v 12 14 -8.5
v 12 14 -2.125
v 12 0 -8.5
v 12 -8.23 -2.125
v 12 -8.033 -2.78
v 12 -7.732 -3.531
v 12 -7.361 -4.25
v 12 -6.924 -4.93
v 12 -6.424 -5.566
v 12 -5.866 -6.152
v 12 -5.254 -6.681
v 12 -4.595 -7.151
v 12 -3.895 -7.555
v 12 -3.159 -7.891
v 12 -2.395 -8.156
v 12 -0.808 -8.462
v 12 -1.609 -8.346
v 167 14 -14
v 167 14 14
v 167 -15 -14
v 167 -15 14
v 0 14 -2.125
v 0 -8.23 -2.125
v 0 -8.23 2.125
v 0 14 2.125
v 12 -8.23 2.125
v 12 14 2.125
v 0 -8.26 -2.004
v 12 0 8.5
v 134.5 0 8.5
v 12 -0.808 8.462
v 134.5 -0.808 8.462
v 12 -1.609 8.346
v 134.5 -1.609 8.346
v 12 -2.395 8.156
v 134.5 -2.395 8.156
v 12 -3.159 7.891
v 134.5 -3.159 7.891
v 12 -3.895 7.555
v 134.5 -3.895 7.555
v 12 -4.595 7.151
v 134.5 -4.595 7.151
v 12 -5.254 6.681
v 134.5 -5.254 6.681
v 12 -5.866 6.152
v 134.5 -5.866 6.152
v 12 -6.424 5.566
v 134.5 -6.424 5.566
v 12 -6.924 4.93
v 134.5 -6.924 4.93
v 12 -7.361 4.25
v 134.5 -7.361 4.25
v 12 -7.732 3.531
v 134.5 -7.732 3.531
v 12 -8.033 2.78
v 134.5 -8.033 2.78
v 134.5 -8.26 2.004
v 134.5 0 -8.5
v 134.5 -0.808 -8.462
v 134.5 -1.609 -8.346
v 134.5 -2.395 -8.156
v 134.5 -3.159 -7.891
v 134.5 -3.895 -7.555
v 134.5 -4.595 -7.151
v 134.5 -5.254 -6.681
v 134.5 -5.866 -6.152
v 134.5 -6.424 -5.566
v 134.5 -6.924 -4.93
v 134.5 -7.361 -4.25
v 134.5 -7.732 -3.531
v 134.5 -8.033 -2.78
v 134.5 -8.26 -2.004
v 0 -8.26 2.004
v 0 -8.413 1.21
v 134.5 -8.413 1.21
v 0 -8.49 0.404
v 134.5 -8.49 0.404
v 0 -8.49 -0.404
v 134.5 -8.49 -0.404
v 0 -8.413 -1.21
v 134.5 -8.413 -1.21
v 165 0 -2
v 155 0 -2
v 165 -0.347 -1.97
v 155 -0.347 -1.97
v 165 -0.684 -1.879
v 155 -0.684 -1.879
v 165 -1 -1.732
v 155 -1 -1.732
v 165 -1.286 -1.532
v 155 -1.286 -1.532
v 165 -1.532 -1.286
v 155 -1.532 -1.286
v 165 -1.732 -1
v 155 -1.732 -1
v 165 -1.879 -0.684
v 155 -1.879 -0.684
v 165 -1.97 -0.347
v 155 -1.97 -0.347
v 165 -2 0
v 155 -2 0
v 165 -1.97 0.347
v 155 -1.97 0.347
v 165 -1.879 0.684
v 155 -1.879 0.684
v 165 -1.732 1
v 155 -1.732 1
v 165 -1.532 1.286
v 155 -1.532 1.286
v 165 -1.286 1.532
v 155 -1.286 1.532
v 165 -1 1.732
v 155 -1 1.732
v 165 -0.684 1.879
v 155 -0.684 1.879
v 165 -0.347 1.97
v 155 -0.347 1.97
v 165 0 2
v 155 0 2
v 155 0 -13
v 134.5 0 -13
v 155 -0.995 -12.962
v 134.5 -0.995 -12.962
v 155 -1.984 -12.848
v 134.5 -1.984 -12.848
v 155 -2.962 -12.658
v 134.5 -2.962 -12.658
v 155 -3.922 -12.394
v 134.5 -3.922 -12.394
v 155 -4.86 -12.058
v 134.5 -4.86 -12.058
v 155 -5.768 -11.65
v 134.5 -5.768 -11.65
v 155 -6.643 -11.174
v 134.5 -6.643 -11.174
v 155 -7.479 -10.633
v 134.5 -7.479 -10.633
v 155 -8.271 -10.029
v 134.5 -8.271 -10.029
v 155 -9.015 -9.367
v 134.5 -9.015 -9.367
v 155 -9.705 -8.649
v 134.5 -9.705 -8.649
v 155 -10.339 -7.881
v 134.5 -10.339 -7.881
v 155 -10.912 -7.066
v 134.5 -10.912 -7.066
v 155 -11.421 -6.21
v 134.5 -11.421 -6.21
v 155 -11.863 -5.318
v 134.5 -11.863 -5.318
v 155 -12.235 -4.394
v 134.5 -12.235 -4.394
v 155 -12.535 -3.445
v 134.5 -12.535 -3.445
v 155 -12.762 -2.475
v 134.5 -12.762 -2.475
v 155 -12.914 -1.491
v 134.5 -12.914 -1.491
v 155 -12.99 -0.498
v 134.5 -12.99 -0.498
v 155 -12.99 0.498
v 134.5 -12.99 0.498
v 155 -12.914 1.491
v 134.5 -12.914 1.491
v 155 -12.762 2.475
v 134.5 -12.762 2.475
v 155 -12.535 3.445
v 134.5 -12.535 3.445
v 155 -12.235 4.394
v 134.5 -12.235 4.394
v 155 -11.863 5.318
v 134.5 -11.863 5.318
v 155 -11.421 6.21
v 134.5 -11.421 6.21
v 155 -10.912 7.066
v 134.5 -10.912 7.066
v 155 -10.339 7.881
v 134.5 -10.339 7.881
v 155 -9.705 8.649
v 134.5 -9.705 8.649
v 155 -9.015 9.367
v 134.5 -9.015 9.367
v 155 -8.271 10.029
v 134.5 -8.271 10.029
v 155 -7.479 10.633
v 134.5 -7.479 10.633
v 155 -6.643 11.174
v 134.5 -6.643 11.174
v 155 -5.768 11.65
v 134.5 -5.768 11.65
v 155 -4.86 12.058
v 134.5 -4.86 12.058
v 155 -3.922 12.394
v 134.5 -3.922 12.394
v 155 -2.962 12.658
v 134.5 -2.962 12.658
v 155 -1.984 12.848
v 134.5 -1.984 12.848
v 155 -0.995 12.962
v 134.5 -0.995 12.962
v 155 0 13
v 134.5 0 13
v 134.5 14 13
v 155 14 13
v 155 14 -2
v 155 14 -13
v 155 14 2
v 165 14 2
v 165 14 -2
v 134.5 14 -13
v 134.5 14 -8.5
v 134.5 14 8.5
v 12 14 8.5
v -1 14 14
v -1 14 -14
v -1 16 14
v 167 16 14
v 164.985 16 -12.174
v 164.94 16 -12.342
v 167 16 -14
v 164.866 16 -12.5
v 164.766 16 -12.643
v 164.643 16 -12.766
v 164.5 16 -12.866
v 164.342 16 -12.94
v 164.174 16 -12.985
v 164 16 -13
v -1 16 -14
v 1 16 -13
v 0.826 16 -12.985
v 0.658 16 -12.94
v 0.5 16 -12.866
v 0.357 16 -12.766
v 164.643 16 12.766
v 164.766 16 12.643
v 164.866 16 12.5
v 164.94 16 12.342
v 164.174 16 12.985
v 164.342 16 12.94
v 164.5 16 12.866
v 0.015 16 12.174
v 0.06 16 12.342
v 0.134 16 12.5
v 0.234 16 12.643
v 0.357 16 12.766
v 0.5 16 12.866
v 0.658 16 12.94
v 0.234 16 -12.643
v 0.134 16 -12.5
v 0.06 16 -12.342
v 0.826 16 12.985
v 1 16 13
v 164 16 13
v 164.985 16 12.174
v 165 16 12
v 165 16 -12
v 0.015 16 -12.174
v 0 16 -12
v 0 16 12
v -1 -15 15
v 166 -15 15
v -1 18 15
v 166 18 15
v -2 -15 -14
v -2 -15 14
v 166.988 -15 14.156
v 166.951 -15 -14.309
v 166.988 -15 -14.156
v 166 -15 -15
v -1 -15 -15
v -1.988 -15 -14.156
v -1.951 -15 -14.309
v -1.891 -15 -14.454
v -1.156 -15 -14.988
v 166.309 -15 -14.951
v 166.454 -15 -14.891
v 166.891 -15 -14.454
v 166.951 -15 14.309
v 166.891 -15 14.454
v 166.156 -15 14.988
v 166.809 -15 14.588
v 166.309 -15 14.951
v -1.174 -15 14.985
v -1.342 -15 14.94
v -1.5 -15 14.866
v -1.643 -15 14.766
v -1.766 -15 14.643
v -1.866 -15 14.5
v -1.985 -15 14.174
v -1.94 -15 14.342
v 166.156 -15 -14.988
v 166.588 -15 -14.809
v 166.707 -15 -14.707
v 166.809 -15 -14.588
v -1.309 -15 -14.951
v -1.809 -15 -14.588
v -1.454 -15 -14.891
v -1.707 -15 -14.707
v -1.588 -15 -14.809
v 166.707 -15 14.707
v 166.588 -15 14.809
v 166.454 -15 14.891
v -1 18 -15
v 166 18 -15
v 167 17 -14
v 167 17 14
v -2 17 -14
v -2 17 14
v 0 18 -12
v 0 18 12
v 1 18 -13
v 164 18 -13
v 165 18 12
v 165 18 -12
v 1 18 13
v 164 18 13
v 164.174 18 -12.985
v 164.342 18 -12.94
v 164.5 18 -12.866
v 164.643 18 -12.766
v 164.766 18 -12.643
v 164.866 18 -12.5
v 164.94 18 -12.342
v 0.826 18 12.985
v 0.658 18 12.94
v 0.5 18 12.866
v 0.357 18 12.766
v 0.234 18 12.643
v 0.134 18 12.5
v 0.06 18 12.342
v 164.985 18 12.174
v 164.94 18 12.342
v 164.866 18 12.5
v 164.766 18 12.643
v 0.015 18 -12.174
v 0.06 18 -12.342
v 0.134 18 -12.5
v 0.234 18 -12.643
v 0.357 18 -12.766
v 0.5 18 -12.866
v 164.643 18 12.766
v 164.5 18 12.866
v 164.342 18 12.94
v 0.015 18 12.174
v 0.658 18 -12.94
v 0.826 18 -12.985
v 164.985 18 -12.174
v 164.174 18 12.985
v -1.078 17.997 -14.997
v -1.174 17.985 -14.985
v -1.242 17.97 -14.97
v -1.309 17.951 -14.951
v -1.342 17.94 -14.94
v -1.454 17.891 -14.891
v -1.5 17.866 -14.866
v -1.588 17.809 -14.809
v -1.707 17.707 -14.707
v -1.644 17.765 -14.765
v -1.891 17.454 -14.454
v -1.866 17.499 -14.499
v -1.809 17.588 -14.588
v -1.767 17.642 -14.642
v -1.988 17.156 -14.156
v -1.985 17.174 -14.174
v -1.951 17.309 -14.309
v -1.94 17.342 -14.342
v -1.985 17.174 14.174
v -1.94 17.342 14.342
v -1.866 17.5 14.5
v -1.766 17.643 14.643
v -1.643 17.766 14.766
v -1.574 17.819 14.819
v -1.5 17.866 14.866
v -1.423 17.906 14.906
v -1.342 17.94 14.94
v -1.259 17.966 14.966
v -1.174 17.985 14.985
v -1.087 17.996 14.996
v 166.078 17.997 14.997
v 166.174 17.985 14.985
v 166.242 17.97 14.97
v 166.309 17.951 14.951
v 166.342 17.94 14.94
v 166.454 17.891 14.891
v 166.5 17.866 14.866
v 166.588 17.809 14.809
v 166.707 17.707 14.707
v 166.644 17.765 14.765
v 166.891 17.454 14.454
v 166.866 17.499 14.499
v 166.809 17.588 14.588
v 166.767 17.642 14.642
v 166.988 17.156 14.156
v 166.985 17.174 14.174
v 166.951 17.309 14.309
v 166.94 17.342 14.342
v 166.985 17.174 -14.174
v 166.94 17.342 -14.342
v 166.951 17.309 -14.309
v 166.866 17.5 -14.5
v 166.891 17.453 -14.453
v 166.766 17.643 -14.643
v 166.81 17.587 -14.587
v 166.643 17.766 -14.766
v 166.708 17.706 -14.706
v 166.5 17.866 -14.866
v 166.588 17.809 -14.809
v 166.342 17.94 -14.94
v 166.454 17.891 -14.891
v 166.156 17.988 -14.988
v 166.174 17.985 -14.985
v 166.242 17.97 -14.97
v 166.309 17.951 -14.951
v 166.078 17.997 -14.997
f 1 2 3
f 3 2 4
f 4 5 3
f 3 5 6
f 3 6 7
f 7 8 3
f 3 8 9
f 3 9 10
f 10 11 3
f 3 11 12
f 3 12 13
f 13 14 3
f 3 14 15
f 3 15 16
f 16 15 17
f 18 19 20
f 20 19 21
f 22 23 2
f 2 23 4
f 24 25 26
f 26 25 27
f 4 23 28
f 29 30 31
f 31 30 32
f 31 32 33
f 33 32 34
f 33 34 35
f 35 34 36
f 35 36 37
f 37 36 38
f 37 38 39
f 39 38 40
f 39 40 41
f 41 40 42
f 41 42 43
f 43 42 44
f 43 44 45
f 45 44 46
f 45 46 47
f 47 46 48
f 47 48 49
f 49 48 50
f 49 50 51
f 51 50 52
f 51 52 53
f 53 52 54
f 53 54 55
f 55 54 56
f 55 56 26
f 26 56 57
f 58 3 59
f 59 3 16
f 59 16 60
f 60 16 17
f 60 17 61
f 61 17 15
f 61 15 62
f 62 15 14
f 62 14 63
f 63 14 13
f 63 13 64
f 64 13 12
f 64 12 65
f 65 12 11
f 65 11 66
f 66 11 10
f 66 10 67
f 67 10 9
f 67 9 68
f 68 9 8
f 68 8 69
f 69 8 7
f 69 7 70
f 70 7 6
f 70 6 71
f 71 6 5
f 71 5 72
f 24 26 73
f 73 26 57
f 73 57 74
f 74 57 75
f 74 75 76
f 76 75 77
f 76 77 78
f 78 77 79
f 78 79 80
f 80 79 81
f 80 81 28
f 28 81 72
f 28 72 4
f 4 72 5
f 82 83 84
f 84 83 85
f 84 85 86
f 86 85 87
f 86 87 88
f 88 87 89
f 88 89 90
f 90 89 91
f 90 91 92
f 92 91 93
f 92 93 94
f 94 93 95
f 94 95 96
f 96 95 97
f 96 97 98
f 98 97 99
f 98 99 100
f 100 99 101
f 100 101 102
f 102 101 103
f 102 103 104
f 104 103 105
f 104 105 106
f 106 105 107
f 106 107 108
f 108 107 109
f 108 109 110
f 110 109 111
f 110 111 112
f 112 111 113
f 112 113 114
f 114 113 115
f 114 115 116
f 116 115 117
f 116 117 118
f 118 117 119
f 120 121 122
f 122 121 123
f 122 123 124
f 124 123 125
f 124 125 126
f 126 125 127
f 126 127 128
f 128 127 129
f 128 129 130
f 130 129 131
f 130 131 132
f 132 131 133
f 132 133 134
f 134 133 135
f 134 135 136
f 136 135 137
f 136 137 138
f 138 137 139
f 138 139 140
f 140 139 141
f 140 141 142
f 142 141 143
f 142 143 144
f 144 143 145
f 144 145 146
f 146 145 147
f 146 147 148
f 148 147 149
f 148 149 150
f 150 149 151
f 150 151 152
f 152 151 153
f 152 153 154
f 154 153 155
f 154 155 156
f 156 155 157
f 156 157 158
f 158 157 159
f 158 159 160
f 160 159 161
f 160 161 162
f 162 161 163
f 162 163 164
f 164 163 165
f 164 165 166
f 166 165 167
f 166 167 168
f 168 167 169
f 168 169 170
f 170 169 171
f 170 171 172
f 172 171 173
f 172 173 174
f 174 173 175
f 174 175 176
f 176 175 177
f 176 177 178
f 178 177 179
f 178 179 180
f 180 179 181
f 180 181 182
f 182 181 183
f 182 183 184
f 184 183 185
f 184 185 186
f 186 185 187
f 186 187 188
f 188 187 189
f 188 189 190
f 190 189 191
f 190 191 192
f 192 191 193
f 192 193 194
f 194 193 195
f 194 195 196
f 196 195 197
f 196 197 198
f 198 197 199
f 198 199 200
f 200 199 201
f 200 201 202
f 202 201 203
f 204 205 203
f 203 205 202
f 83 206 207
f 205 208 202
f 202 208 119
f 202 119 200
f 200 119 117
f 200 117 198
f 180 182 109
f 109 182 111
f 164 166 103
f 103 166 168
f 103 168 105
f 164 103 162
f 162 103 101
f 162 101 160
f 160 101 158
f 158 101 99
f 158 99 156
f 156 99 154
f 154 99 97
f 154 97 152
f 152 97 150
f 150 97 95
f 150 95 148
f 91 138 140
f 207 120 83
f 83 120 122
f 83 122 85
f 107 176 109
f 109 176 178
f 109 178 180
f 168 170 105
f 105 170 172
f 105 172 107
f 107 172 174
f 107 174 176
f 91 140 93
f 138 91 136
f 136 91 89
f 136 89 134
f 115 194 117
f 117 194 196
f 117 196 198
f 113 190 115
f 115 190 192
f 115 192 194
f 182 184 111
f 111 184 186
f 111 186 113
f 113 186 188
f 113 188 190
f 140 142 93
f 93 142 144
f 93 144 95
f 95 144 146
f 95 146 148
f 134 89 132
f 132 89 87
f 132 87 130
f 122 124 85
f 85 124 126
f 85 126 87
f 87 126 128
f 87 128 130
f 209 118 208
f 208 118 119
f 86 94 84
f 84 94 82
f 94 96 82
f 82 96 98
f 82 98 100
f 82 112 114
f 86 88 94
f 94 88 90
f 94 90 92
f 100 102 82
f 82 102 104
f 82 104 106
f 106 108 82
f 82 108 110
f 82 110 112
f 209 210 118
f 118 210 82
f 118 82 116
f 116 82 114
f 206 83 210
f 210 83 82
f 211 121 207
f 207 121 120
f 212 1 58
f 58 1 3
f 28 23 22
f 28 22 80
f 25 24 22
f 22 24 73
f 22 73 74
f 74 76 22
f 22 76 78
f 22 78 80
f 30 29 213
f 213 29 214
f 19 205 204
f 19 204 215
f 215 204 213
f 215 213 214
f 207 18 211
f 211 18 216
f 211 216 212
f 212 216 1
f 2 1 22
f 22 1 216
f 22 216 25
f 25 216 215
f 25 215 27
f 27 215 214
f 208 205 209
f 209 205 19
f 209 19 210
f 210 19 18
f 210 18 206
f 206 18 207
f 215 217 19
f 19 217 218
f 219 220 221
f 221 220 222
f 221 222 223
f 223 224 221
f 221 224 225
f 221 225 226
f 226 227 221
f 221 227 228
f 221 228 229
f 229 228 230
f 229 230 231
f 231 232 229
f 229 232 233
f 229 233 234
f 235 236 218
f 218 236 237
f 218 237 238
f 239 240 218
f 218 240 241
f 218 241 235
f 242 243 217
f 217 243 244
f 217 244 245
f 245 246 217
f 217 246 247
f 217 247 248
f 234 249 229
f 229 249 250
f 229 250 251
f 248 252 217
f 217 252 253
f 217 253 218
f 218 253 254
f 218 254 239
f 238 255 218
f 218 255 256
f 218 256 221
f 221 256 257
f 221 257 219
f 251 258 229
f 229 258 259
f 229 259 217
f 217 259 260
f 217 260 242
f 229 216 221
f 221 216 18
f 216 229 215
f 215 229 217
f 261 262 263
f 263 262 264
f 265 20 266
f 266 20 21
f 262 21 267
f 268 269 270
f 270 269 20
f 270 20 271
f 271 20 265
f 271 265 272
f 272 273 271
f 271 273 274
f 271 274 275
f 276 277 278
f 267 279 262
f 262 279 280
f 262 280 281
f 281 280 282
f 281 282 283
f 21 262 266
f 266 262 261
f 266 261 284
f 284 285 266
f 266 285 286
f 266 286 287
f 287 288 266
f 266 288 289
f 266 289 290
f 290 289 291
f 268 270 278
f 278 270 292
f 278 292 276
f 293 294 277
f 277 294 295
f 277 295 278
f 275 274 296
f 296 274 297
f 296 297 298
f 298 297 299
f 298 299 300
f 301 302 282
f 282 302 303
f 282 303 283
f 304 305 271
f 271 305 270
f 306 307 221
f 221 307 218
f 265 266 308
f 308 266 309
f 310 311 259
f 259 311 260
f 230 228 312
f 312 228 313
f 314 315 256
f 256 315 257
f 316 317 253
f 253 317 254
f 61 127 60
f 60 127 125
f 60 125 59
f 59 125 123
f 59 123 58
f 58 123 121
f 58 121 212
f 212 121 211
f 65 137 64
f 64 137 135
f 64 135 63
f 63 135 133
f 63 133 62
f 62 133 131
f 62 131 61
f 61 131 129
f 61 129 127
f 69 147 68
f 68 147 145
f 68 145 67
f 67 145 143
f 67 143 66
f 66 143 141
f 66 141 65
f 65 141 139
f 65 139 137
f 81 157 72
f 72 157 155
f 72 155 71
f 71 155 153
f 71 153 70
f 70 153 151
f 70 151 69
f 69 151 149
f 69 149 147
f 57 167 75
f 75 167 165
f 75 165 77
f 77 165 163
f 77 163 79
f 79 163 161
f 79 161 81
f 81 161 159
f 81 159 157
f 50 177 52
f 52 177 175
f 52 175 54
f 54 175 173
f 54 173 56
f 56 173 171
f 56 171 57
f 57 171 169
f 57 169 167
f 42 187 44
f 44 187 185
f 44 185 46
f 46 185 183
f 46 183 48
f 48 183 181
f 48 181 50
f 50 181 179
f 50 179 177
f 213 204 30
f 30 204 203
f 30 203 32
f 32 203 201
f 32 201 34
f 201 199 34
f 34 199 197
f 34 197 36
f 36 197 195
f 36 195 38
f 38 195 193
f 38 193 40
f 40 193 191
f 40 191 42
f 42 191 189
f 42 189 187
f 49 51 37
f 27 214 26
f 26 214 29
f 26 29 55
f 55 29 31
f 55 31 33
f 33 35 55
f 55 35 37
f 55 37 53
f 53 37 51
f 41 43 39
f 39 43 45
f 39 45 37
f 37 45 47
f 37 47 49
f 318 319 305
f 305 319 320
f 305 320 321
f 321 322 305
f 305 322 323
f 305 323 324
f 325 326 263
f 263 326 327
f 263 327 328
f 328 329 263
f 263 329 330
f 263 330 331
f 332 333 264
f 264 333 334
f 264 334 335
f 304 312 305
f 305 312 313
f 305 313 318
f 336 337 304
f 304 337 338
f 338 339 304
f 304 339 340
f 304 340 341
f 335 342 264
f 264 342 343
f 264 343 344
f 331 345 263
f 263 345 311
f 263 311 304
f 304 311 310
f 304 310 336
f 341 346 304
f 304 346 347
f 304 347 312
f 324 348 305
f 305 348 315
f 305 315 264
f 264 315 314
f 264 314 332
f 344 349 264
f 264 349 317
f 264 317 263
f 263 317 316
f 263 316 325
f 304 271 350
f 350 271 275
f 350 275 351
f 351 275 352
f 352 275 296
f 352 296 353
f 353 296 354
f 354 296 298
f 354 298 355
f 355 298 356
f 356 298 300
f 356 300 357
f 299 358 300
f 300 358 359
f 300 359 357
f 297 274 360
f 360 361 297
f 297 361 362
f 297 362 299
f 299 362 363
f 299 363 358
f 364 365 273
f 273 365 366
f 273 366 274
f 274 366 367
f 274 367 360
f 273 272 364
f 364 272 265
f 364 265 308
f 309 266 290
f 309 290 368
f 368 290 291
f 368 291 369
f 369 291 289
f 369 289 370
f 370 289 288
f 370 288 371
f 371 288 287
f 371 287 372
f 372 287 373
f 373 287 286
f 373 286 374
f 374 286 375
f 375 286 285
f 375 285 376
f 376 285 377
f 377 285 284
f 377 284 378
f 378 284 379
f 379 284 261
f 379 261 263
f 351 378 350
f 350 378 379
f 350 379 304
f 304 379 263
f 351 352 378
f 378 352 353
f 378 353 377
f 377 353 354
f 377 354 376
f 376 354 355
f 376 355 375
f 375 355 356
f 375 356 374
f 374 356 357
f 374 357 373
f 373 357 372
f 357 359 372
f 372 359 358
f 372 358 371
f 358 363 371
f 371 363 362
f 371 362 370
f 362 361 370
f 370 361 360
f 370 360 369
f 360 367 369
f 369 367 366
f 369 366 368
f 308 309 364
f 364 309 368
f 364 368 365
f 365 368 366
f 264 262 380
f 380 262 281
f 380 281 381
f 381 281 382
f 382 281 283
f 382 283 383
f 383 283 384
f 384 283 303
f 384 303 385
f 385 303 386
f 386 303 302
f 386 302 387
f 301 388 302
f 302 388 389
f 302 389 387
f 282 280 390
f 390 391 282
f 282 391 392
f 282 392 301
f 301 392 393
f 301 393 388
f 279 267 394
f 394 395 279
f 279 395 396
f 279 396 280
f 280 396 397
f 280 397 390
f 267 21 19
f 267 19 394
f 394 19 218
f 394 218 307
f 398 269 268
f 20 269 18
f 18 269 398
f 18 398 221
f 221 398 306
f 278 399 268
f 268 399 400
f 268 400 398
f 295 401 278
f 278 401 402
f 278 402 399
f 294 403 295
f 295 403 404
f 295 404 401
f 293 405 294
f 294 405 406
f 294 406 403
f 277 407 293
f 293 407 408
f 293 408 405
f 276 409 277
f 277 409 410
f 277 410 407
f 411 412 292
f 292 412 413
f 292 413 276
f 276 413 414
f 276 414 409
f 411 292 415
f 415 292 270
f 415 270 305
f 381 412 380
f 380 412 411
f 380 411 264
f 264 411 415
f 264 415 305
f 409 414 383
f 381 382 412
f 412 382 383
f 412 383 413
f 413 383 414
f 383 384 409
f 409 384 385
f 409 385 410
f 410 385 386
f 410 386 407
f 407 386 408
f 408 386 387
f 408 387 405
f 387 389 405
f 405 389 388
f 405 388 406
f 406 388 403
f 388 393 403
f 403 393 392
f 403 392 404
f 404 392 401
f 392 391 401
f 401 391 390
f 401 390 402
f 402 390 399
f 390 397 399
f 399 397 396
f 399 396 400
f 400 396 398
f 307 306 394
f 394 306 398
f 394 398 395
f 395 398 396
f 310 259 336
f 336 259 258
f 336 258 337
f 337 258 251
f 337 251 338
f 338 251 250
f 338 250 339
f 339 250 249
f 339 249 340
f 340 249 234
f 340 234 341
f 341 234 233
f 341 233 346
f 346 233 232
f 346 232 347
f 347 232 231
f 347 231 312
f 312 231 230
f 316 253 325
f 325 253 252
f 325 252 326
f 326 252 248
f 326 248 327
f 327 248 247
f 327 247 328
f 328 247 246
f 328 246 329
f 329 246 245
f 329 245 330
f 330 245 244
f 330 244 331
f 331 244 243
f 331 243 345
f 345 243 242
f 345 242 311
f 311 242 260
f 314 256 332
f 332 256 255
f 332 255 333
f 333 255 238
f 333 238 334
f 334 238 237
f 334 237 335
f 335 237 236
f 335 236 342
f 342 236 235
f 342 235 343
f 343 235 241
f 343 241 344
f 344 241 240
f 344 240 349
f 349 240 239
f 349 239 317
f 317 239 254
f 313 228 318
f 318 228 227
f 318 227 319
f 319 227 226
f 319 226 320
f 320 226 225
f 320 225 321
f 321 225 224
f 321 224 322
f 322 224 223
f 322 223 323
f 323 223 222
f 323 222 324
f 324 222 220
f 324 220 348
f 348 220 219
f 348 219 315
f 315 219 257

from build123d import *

# Parameters (mm, degrees)
BOSS_EXTRUDE1_DEPTH = 165
SKETCH3_W           = 30
SKETCH3_H           = 32
BOSS_EXTRUDE2_DEPTH = 2
SKETCH4_W           = 30
SKETCH4_H           = 32
BOSS_EXTRUDE3_DEPTH = 2
BOSS_EXTRUDE4_START = 10
BOSS_EXTRUDE4_DEPTH = 10
CUT_EXTRUDE1_DEPTH  = 10
BOSS_EXTRUDE6_DEPTH = 15
CUT_EXTRUDE2_DEPTH  = 15
BOSS_EXTRUDE7_DEPTH = 121
CUT_EXTRUDE3_DEPTH  = 121
SKETCH13_W          = 169
SKETCH13_H          = 30
CUT_EXTRUDE5_DEPTH  = 3
SKETCH14_W          = 169
SKETCH14_H          = 30
BOSS_EXTRUDE8_DEPTH = 3
SKETCH12_W          = 28
SKETCH12_H          = 2
CUT_EXTRUDE6_DEPTH  = 168
SKETCH16_W          = 165
SKETCH16_H          = 26
CUT_EXTRUDE7_DEPTH  = 3
CUT_EXTRUDE8_DEPTH  = 1.5
CUT_EXTRUDE9_DEPTH  = 3
SKETCH20_W          = 169
SKETCH20_H          = 30
BOSS_EXTRUDE9_DEPTH = 1
SKETCH21_W          = 165
SKETCH21_H          = 26
CUT_EXTRUDE10_DEPTH = 1
FILLET1_START       = -16
FILLET1_DEPTH       = 35
FILLET1_2_DEPTH     = 32
FILLET2_R           = 1
CUT_EXTRUDE11_DEPTH = 12


with BuildPart() as part:
    # Sketch2 → Boss-Extrude1 (new body)
    with BuildSketch(Plane(origin=(0, 0, 0), x_dir=(0, 0, -1), z_dir=(1, 0, 0))):
        with BuildLine():
            Line((-13, 0), (-13, 17))
            Line((-13, 17), (-15, 17))
            Line((-15, 17), (-15, -15))
            Line((-15, -15), (15, -15))
            Line((15, -15), (15, 17))
            Line((15, 17), (13, 17))
            Line((13, 17), (13, 0))
            ThreePointArc((13, 0), (0, -13), (-13, 0))
        make_face()
    extrude(amount=BOSS_EXTRUDE1_DEPTH)

    # Sketch3 → Boss-Extrude2 (add)
    with BuildSketch(Plane(origin=(165, 0, 0), x_dir=(0, 0, -1), z_dir=(1, 0, 0))):
        with Locations((0, 1)):
            Rectangle(SKETCH3_W, SKETCH3_H)
    extrude(amount=BOSS_EXTRUDE2_DEPTH)

    # Sketch4 → Boss-Extrude3 (add)
    with BuildSketch(Plane.ZY):
        with Locations((0, 1)):
            Rectangle(SKETCH4_W, SKETCH4_H)
    extrude(amount=BOSS_EXTRUDE3_DEPTH)

    # Sketch5 → Boss-Extrude4 (add)
    with BuildSketch(Plane.ZY.offset(-165).offset(BOSS_EXTRUDE4_START)):
        with BuildLine():
            Line((-13, 17), (-13, 0))
            ThreePointArc((-13, 0), (0, -13), (13, 0))
            Line((13, 0), (13, 17))
            Line((13, 17), (-13, 17))
        make_face()
    extrude(amount=-BOSS_EXTRUDE4_DEPTH)

    # Sketch6 → Cut-Extrude1 (cut)
    with BuildSketch(Plane.ZY.offset(-155)):
        with BuildLine():
            Line((-2, 0), (-2, 17))
            Line((-2, 17), (2, 17))
            Line((2, 17), (2, 0))
            ThreePointArc((2, 0), (0, -2), (-2, 0))
        make_face()
    extrude(amount=-CUT_EXTRUDE1_DEPTH, mode=Mode.SUBTRACT)

    # Sketch8 → Boss-Extrude6 (add)
    with BuildSketch(Plane(origin=(0, 0, 0), x_dir=(0, 0, -1), z_dir=(1, 0, 0))):
        with BuildLine():
            Line((13, 0), (13, 17))
            Line((13, 17), (-13, 17))
            Line((-13, 17), (-13, 0))
            ThreePointArc((-13, 0), (0, -13), (13, 0))
        make_face()
    extrude(amount=BOSS_EXTRUDE6_DEPTH)

    # Sketch9 → Cut-Extrude2 (cut)
    with BuildSketch(Plane(origin=(15, 0, 0), x_dir=(0, 0, -1), z_dir=(1, 0, 0))):
        with BuildLine():
            Line((-2.125, 0), (-2.125, 17))
            Line((-2.125, 17), (2.125, 17))
            Line((2.125, 17), (2.125, 0))
            ThreePointArc((2.125, 0), (0, -2.125), (-2.125, 0))
        make_face()
    extrude(amount=-CUT_EXTRUDE2_DEPTH, mode=Mode.SUBTRACT)

    # Sketch10 → Boss-Extrude7 (add)
    with BuildSketch(Plane(origin=(15, 0, 0), x_dir=(0, 0, -1), z_dir=(1, 0, 0))):
        with BuildLine():
            Line((13, 0), (13, 17))
            Line((13, 17), (-13, 17))
            Line((-13, 17), (-13, 0))
            ThreePointArc((-13, 0), (0, -13), (13, 0))
        make_face()
    extrude(amount=BOSS_EXTRUDE7_DEPTH)

    # Sketch11 → Cut-Extrude3 (cut)
    with BuildSketch(Plane(origin=(136, 0, 0), x_dir=(0, 0, -1), z_dir=(1, 0, 0))):
        with BuildLine():
            Line((-8.5, 0), (-8.5, 17))
            Line((-8.5, 17), (8.5, 17))
            Line((8.5, 17), (8.5, 0))
            ThreePointArc((8.5, 0), (0, -8.5), (-8.5, 0))
        make_face()
    extrude(amount=-CUT_EXTRUDE3_DEPTH, mode=Mode.SUBTRACT)

    # Sketch13 → Cut-Extrude5 (cut)
    with BuildSketch(Plane(origin=(0, 17, 0), x_dir=(1, 0, 0), z_dir=(0, 1, 0))):
        with Locations((82.5, 0)):
            Rectangle(SKETCH13_W, SKETCH13_H)
    extrude(amount=-CUT_EXTRUDE5_DEPTH, mode=Mode.SUBTRACT)

    # Sketch14 → Boss-Extrude8 (add)
    with BuildSketch(Plane(origin=(0, 14, 0), x_dir=(1, 0, 0), z_dir=(0, 1, 0))):
        with Locations((82.5, 0)):
            Rectangle(SKETCH14_W, SKETCH14_H)
    extrude(amount=BOSS_EXTRUDE8_DEPTH)

    # Sketch12 → Cut-Extrude6 (cut)
    with BuildSketch(Plane(origin=(167, 0, 0), x_dir=(0, 0, -1), z_dir=(1, 0, 0))):
        with Locations((0, 15)):
            Rectangle(SKETCH12_W, SKETCH12_H)
    extrude(amount=-CUT_EXTRUDE6_DEPTH, mode=Mode.SUBTRACT)

    # Sketch16 → Cut-Extrude7 (cut)
    with BuildSketch(Plane(origin=(0, 17, 0), x_dir=(1, 0, 0), z_dir=(0, 1, 0))):
        with Locations((82.5, 0)):
            Rectangle(SKETCH16_W, SKETCH16_H)
    extrude(amount=-CUT_EXTRUDE7_DEPTH, mode=Mode.SUBTRACT)

    # Sketch17 → Cut-Extrude8 (cut)
    with BuildSketch(Plane(origin=(136, 0, 0), x_dir=(0, 0, -1), z_dir=(1, 0, 0))):
        with BuildLine():
            Line((13, 14), (13, 0))
            ThreePointArc((13, 0), (0, -13), (-13, 0))
            Line((-13, 0), (-13, 14))
            Line((-13, 14), (-8.5, 14))
            Line((-8.5, 14), (-8.5, 0))
            ThreePointArc((-8.5, 0), (0, -8.5), (8.5, 0))
            Line((8.5, 0), (8.5, 14))
            Line((8.5, 14), (13, 14))
        make_face()
    extrude(amount=-CUT_EXTRUDE8_DEPTH, mode=Mode.SUBTRACT)

    # Sketch18 → Cut-Extrude9 (cut)
    with BuildSketch(Plane(origin=(15, 0, 0), x_dir=(0, 0, -1), z_dir=(1, 0, 0))):
        with BuildLine():
            Line((8.5, 0), (8.5, 14))
            Line((8.5, 14), (2.125, 14))
            Line((2.125, 14), (2.125, 0))
            ThreePointArc((2.125, 0), (0, -2.125), (-2.125, 0))
            Line((-2.125, 0), (-2.125, 14))
            Line((-2.125, 14), (-8.5, 14))
            Line((-8.5, 14), (-8.5, 0))
            ThreePointArc((-8.5, 0), (0, -8.5), (8.5, 0))
        make_face()
    extrude(amount=-CUT_EXTRUDE9_DEPTH, mode=Mode.SUBTRACT)

    # Sketch20 → Boss-Extrude9 (add)
    with BuildSketch(Plane(origin=(0, 17, 0), x_dir=(1, 0, 0), z_dir=(0, 1, 0))):
        with Locations((82.5, 0)):
            Rectangle(SKETCH20_W, SKETCH20_H)
    extrude(amount=BOSS_EXTRUDE9_DEPTH)

    # Sketch21 → Cut-Extrude10 (cut)
    with BuildSketch(Plane(origin=(0, 18, 0), x_dir=(1, 0, 0), z_dir=(0, 1, 0))):
        with Locations((82.5, 0)):
            Rectangle(SKETCH21_W, SKETCH21_H)
    extrude(amount=-CUT_EXTRUDE10_DEPTH, mode=Mode.SUBTRACT)

    # Fillet1: read off the stored shape, not the designer's step
    # Fillet1 outline → Fillet1 (cut)
    with BuildSketch(Plane(origin=(0, 0, 0), x_dir=(1, 0, 0), z_dir=(0, 1, 0)).offset(FILLET1_START)):
        with BuildLine():
            Line((-2, 15), (-2, 14))
            ThreePointArc((-2, 14), (-1.707106781, 14.707106781), (-1, 15))
            Line((-1, 15), (-2, 15))
        make_face()
        with BuildLine():
            ThreePointArc((-1, -15), (-1.707106781, -14.707106781), (-2, -14))
            Line((-2, -14), (-2, -15))
            Line((-2, -15), (-1, -15))
        make_face()
        with BuildLine():
            Line((167, 15), (166, 15))
            ThreePointArc((166, 15), (166.707106781, 14.707106781), (167, 14))
            Line((167, 14), (167, 15))
        make_face()
        with BuildLine():
            ThreePointArc((167, -14), (166.707106781, -14.707106781), (166, -15))
            Line((166, -15), (167, -15))
            Line((167, -15), (167, -14))
        make_face()
    extrude(amount=FILLET1_DEPTH, mode=Mode.SUBTRACT)

    # Fillet1 2 outline → Fillet1 2 (cut)
    with BuildSketch(Plane.XY.offset(FILLET1_START)):
        with BuildLine():
            Line((167, 18), (166, 18))
            ThreePointArc((166, 18), (166.707106781, 17.707106781), (167, 17))
            Line((167, 17), (167, 18))
        make_face()
        with BuildLine():
            ThreePointArc((-2, 17), (-1.707106781, 17.707106781), (-1, 18))
            Line((-1, 18), (-2, 18))
            Line((-2, 18), (-2, 17))
        make_face()
    extrude(amount=FILLET1_2_DEPTH, mode=Mode.SUBTRACT)

    # Fillet2
    fillet2_edges = [part.edges().sort_by_distance(p)[0] for p in [
        (0, 17, 13),
        (0, 17, -13),
        (165, 17, -13),
        (165, 17, 13),
    ]]
    fillet(fillet2_edges, radius=FILLET2_R)

    # Sketch22 → Cut-Extrude11 (cut)
    with BuildSketch(Plane(origin=(12, 0, 0), x_dir=(0, 0, -1), z_dir=(1, 0, 0))):
        with BuildLine():
            Line((-2.125, 0), (-2.125, -8.230089611))
            ThreePointArc((-2.125, -8.230089611), (0, -8.5), (2.125, -8.230089611))
            Line((2.125, -8.230089611), (2.125, 0))
            ThreePointArc((2.125, 0), (0, -2.125), (-2.125, 0))
        make_face()
    extrude(amount=-CUT_EXTRUDE11_DEPTH, mode=Mode.SUBTRACT)


solid = part.part
